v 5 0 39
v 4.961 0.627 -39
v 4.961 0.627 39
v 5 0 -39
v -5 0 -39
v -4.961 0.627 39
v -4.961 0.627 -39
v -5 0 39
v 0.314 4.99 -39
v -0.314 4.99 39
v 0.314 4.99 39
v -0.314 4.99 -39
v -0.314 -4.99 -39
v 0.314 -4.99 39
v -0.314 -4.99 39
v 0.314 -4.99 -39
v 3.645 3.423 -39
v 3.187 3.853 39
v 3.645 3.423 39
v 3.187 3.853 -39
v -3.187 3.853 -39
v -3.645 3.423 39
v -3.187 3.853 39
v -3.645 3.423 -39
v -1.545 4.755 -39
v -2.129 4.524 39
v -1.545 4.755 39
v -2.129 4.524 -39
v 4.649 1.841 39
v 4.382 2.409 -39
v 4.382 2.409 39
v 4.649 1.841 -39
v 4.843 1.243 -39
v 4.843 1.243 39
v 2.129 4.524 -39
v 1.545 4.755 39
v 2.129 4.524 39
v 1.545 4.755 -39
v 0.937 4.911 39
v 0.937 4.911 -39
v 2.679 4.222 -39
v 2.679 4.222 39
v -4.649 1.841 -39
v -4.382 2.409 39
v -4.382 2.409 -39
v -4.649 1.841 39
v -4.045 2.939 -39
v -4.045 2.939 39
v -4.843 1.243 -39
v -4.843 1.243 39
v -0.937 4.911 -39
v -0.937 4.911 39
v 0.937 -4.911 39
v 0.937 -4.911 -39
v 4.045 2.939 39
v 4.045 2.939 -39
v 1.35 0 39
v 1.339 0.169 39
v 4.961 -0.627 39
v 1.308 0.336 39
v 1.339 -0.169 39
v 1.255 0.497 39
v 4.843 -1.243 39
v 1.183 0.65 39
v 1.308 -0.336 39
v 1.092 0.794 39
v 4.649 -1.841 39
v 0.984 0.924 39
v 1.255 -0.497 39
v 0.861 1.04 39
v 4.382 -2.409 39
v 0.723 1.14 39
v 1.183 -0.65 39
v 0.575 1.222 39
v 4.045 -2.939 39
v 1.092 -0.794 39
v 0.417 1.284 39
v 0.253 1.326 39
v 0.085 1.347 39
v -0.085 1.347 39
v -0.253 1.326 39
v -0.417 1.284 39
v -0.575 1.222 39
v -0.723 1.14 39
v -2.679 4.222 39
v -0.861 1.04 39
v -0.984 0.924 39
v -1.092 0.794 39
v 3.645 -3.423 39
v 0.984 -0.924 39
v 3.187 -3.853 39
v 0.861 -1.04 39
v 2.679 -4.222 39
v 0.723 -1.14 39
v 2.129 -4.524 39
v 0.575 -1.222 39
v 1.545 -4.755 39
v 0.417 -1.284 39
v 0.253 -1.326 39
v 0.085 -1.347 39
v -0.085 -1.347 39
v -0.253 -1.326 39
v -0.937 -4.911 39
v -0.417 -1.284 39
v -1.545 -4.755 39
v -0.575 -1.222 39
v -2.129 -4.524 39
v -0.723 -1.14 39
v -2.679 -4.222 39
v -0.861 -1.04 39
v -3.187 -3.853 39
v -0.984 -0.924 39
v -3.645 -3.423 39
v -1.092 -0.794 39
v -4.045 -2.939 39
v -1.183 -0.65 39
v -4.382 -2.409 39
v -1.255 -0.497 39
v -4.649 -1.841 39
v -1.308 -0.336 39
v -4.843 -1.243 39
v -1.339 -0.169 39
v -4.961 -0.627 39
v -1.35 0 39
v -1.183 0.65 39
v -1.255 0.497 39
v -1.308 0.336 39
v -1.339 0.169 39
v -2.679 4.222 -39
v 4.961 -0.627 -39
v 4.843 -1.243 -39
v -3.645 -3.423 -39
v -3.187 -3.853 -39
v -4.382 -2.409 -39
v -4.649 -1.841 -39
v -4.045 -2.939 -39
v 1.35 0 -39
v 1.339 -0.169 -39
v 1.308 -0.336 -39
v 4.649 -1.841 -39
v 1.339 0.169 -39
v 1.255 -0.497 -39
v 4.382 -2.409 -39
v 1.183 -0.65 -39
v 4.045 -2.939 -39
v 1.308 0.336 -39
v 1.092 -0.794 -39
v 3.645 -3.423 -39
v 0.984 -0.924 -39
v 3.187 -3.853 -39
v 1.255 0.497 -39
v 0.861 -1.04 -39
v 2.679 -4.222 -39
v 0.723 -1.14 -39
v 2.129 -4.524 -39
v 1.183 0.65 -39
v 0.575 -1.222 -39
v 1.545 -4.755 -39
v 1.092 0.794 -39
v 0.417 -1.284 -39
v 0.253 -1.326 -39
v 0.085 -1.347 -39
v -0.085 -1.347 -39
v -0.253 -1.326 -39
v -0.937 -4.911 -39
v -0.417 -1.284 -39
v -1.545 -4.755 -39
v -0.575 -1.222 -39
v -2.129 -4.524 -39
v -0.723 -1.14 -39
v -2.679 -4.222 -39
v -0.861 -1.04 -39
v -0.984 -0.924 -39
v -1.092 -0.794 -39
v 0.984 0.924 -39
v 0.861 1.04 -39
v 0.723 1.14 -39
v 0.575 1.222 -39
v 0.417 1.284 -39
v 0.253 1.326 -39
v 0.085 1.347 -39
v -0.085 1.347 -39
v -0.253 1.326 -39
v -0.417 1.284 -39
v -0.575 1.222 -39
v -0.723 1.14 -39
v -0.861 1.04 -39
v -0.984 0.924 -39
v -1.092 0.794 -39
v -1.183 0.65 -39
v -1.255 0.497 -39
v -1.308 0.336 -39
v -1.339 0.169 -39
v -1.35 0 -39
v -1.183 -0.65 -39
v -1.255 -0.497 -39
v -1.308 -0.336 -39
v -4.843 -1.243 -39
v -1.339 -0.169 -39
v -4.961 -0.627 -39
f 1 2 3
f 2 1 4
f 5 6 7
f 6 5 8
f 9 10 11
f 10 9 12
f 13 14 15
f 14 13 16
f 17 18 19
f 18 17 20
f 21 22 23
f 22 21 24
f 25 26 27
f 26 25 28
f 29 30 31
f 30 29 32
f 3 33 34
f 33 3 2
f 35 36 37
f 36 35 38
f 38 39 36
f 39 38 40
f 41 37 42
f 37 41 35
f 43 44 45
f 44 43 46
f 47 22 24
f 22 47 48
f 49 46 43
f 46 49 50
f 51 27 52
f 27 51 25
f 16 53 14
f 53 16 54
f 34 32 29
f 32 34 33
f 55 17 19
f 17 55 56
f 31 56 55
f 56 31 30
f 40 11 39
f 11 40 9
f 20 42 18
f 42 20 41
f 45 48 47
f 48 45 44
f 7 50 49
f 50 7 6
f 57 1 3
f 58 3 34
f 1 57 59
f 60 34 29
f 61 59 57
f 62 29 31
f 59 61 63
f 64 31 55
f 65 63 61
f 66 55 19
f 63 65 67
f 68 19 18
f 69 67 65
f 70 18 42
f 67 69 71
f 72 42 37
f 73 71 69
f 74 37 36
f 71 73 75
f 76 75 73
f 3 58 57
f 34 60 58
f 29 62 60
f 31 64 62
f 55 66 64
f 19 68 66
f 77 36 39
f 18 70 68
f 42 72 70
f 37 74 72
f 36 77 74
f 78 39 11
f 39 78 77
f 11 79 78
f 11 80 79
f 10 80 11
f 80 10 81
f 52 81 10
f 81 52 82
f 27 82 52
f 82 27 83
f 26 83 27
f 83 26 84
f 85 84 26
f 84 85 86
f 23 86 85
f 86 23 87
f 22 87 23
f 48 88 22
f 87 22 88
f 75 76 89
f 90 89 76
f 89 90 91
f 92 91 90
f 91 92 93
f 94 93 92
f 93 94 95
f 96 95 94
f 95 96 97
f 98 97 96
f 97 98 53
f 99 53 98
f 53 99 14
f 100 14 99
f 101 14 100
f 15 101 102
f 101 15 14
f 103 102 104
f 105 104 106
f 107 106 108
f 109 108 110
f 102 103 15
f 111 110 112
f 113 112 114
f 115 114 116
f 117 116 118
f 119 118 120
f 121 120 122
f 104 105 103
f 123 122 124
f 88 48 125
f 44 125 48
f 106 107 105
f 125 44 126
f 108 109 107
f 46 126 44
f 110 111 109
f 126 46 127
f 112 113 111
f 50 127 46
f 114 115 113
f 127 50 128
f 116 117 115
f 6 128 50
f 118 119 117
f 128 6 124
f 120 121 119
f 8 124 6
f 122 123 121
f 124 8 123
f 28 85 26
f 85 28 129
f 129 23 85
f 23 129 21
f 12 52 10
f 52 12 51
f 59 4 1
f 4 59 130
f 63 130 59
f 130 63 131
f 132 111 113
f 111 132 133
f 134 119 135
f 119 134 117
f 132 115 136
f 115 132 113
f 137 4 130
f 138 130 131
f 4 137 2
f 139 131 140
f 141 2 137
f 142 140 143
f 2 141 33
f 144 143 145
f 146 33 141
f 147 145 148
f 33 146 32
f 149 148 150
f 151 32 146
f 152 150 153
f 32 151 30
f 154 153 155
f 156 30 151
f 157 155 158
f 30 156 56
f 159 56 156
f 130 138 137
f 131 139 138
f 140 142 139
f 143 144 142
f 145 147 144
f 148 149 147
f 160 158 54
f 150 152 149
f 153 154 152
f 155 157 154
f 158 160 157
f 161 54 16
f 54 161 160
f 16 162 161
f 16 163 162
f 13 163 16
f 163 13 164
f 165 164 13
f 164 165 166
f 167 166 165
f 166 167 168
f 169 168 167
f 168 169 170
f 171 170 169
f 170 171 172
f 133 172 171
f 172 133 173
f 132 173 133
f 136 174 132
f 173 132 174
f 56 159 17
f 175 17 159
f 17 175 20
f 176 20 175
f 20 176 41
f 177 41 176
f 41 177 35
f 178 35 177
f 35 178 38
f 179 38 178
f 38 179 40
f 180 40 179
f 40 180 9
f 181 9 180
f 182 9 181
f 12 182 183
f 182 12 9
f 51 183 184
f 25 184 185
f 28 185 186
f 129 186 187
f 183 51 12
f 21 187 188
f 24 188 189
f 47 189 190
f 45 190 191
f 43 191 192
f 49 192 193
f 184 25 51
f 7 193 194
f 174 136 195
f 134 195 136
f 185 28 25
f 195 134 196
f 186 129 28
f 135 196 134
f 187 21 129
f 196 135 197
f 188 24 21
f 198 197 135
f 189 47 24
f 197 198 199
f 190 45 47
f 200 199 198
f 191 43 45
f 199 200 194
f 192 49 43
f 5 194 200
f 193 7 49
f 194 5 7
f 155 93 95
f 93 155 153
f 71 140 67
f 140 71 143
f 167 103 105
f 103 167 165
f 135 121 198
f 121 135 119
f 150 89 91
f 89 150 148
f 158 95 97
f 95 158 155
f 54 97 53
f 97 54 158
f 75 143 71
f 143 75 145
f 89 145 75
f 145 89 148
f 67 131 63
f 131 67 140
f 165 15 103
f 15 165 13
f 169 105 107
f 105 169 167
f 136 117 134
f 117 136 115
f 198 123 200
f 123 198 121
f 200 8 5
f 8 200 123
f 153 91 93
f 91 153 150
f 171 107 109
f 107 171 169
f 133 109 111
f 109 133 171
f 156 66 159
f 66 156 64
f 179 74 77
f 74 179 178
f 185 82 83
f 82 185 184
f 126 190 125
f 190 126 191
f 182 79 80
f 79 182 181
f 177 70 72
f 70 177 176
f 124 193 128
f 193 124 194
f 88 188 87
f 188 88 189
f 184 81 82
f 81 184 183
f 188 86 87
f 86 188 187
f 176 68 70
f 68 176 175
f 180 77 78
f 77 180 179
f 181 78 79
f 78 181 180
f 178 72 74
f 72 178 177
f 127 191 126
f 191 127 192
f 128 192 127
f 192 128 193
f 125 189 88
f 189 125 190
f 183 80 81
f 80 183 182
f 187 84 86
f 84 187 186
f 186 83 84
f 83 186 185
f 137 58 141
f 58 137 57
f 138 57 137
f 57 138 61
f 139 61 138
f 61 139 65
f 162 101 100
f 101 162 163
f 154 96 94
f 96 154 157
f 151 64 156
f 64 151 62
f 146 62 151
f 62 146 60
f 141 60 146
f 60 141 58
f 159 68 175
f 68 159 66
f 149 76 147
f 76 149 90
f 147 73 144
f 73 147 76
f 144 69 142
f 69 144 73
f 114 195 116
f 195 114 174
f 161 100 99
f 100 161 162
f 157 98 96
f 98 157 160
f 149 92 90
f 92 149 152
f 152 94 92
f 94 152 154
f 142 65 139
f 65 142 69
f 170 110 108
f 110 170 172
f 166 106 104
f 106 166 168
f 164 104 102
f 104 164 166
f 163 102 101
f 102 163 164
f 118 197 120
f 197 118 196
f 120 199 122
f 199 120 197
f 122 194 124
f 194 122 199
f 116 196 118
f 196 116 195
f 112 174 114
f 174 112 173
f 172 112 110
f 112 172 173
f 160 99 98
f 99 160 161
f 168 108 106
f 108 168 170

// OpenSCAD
$fn = 50;


difference() {
	union() {
		translate(v = [0, 0, -39.0000000000]) {
			cylinder(h = 78, r = 5.0000000000);
		}
	}
	union() {
		translate(v = [0, 0, -100.0000000000]) {
			cylinder(h = 200, r = 1.3500000000);
		}
	}
}
